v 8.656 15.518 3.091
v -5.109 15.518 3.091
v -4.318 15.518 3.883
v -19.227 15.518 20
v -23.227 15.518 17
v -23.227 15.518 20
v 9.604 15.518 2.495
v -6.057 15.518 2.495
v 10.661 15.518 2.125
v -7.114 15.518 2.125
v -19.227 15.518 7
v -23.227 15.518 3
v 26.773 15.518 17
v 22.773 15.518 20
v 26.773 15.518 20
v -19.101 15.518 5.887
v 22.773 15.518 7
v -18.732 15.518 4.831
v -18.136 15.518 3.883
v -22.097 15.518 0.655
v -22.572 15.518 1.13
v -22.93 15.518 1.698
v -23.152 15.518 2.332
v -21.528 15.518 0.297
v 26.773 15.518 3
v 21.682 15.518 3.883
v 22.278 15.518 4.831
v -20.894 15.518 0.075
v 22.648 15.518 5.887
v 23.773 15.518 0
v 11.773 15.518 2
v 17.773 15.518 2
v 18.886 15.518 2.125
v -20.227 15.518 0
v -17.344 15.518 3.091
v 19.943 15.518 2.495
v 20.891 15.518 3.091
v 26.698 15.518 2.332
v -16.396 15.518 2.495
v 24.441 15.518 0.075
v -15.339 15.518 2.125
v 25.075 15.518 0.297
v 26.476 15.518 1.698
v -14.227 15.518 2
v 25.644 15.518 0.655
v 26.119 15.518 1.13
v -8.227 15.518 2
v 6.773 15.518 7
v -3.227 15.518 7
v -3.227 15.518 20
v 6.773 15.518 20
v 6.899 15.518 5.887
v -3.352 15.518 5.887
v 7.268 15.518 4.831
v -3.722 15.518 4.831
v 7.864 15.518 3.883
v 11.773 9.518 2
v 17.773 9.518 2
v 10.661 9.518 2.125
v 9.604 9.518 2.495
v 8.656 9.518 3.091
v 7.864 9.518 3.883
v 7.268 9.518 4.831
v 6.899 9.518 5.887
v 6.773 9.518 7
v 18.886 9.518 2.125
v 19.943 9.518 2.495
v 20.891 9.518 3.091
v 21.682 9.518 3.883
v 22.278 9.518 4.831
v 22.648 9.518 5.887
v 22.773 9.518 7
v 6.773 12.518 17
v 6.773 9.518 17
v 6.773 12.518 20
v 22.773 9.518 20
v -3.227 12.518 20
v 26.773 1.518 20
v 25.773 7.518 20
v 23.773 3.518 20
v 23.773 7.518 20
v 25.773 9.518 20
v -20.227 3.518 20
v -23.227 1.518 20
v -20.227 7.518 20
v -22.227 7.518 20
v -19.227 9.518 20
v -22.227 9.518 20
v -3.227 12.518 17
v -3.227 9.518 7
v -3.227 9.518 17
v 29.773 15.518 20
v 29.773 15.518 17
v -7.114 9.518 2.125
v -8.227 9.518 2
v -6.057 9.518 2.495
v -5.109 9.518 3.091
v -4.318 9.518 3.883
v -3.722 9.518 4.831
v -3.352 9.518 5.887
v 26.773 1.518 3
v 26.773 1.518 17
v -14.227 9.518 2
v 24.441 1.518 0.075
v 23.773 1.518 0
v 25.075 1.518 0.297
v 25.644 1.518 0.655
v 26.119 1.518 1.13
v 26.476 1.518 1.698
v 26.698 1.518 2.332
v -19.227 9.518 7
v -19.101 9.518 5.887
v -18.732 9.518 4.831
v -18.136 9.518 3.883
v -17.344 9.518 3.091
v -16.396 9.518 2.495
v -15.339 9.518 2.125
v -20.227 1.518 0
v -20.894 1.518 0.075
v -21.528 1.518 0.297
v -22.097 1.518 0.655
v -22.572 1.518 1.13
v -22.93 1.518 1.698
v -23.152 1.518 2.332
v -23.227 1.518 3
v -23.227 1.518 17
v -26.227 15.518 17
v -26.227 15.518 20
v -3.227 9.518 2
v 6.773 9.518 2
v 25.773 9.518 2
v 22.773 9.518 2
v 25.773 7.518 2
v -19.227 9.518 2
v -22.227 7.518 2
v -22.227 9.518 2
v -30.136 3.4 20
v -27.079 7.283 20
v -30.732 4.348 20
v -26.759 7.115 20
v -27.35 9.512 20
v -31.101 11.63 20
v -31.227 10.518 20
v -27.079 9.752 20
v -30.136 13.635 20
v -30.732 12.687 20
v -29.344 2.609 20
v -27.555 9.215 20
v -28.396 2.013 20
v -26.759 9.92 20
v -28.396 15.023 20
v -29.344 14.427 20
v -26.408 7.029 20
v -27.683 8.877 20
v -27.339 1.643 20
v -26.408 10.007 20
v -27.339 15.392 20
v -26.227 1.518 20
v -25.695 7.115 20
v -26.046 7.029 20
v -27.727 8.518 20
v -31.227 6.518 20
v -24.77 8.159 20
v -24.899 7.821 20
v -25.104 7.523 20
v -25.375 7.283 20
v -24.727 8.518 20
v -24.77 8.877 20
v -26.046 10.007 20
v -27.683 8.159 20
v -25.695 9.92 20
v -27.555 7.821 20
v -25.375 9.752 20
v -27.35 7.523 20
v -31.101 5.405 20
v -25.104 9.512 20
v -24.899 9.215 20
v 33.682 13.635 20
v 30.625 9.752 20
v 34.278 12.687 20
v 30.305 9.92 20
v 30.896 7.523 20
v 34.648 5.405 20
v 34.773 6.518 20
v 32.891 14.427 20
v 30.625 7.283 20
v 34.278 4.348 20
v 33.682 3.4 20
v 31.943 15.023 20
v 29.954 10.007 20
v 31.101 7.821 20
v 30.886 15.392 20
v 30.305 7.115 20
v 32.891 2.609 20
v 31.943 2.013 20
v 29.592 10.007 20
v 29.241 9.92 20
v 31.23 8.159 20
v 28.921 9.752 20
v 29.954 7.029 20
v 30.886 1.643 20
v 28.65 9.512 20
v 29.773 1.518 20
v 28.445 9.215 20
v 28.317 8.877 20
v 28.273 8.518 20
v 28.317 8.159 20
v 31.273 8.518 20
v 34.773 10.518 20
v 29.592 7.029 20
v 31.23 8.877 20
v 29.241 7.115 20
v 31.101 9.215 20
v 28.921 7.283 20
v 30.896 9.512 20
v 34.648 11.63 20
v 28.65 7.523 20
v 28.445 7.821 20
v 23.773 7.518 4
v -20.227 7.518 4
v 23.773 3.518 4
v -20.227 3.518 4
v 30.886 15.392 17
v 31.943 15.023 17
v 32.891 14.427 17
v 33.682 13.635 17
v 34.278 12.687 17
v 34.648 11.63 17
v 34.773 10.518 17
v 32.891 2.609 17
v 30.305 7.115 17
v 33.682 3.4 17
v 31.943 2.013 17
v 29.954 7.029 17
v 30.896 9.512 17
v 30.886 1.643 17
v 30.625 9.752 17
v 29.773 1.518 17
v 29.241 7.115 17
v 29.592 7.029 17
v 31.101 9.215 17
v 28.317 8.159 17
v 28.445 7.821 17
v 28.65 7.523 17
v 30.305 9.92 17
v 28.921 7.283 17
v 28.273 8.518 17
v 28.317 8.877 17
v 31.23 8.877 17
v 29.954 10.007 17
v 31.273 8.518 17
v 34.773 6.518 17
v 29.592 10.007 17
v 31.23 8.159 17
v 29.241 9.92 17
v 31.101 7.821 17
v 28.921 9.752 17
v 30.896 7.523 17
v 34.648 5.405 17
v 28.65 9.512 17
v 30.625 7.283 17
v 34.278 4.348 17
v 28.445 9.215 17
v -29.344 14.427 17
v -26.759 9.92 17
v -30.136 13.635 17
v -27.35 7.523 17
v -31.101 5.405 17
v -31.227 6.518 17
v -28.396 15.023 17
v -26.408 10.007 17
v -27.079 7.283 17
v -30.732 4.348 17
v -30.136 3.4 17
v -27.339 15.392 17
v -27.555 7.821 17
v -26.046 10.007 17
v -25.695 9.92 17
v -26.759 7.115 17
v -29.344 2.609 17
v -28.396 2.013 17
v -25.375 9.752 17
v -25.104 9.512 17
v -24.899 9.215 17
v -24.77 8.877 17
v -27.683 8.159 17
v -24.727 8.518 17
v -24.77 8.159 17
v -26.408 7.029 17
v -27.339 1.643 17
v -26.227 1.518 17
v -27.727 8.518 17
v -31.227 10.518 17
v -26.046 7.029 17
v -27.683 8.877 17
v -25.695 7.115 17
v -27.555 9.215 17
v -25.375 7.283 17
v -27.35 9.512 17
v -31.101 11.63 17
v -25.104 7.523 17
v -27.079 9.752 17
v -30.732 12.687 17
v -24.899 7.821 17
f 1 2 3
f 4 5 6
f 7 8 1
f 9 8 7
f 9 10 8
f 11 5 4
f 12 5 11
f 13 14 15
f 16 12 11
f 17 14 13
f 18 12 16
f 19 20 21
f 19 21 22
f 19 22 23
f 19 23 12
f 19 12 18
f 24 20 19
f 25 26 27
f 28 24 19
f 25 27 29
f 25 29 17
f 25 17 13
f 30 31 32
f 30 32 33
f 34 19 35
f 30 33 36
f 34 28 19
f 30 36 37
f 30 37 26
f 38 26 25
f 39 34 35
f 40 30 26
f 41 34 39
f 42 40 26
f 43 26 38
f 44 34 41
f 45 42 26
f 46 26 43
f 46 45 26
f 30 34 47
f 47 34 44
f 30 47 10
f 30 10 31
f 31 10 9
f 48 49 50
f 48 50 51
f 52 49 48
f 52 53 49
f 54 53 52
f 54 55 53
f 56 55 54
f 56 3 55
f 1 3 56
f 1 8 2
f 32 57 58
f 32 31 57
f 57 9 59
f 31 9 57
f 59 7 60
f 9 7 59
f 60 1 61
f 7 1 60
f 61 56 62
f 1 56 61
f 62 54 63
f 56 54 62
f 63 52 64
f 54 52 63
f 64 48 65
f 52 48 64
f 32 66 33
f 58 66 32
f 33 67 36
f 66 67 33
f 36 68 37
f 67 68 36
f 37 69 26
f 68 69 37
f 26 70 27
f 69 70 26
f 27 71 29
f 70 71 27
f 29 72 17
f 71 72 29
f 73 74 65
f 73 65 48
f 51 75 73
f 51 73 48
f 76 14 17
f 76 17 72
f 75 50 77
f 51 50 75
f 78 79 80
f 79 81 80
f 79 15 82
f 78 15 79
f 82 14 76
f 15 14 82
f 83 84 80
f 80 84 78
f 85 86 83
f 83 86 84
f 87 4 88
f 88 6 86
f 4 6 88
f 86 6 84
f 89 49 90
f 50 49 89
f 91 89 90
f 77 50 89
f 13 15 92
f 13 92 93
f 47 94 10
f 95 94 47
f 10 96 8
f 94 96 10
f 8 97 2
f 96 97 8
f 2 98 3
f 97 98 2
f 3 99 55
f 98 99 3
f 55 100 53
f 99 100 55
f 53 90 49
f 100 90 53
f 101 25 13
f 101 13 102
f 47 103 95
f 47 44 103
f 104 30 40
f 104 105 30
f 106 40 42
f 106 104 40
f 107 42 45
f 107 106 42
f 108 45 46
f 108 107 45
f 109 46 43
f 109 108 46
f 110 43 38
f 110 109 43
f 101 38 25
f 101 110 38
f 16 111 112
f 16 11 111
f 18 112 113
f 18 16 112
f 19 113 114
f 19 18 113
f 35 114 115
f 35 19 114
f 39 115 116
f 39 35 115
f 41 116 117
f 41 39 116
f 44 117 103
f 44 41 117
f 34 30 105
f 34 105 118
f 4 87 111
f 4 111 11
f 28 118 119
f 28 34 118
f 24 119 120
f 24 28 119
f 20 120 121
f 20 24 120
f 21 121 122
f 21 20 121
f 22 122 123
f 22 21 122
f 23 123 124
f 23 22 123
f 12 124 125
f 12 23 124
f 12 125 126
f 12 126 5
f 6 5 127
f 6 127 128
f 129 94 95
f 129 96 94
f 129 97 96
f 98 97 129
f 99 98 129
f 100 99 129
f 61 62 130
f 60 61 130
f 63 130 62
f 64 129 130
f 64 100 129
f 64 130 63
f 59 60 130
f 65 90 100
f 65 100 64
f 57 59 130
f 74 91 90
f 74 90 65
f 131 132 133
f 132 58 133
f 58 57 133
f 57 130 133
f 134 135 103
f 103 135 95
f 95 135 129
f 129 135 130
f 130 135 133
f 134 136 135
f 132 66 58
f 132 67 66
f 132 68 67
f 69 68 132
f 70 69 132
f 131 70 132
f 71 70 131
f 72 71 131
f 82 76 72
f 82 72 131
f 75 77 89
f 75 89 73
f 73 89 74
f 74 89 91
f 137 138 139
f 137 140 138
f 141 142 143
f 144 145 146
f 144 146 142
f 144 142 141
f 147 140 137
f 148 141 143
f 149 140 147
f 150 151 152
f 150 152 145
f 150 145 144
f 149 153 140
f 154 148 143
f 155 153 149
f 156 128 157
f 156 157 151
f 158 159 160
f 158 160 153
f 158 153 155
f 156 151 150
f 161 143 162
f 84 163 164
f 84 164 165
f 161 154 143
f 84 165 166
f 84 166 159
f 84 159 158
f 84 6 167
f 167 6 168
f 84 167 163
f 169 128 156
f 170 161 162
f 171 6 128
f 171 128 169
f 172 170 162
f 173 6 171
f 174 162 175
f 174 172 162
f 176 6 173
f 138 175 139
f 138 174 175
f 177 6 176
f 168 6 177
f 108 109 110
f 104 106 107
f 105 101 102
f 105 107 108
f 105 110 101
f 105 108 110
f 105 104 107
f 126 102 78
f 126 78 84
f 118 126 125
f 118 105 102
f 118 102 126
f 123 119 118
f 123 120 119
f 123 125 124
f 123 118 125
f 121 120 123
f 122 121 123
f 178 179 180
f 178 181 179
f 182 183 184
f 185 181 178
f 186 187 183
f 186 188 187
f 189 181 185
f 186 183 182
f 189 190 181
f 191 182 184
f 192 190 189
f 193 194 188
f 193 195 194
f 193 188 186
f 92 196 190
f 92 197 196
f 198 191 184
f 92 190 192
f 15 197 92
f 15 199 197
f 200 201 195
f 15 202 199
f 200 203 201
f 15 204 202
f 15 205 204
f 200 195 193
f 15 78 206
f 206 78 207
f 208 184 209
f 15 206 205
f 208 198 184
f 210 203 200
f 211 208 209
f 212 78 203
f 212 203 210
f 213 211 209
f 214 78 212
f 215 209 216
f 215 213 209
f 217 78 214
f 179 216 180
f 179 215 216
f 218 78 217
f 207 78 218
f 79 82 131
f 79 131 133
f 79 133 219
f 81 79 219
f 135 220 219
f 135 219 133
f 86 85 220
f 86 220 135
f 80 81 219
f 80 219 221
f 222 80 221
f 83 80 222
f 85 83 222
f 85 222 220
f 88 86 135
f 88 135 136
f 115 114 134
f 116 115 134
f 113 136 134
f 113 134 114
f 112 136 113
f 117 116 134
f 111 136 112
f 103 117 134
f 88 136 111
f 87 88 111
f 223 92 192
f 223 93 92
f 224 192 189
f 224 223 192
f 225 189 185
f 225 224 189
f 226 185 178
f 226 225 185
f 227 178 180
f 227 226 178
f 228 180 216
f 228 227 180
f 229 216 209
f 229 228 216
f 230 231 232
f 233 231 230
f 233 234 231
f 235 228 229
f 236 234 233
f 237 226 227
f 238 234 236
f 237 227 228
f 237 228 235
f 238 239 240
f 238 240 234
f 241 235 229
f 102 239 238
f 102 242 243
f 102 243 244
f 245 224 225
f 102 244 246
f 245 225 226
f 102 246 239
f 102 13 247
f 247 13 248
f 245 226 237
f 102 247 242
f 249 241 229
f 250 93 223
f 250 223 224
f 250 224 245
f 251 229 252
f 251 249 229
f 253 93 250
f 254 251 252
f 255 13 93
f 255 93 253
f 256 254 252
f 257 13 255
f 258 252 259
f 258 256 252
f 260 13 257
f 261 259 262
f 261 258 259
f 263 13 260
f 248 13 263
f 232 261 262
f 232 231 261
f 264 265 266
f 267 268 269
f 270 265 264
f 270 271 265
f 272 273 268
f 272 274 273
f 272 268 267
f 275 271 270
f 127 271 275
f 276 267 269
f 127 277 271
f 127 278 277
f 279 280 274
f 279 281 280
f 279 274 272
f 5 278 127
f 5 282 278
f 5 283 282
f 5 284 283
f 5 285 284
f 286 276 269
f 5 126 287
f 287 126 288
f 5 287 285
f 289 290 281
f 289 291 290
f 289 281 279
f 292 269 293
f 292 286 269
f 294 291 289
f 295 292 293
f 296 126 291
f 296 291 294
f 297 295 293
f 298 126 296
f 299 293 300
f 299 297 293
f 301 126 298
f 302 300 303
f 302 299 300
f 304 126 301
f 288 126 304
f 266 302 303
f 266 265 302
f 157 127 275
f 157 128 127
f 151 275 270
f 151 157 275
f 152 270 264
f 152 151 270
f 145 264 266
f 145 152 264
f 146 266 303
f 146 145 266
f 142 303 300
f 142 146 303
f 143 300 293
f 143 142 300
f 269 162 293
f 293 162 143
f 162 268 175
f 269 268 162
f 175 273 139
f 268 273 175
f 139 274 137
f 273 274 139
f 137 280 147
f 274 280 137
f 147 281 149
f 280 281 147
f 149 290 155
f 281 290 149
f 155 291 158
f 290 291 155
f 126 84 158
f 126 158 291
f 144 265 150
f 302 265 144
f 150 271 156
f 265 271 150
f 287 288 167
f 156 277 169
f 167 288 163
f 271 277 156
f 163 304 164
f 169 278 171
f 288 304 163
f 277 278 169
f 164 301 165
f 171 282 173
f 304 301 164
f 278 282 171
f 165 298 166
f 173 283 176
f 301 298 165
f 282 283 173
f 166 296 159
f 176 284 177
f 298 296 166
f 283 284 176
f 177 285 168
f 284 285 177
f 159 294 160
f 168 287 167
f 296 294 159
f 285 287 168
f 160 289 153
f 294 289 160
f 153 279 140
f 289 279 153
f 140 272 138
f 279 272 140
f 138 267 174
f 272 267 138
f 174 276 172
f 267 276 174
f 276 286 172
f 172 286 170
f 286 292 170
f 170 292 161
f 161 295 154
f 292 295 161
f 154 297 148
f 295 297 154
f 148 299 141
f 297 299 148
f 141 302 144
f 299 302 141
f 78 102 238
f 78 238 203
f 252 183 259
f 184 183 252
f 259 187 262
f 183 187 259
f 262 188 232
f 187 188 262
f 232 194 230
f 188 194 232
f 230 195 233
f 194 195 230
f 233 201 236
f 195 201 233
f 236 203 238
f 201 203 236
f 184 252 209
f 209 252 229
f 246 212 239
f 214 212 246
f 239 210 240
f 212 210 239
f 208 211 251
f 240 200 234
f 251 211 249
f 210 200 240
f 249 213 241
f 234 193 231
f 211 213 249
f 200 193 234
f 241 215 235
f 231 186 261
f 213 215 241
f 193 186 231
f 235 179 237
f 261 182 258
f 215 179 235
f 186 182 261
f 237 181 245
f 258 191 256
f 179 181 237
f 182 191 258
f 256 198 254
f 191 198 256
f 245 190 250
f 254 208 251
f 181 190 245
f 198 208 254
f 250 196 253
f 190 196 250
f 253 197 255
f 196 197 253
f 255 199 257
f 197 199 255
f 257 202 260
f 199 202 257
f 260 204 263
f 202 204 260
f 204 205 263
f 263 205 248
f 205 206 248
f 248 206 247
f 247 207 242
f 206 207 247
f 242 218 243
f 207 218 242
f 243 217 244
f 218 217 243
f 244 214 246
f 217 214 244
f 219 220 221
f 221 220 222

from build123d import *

# Parameters (mm, degrees)
SKETCH_W        = 50
SKETCH_H        = 14
PAD_DEPTH       = 20
SKETCH001_W     = 48
SKETCH001_H     = 2
POCKET_DEPTH    = 18
SKETCH002_W     = 44
SKETCH002_H     = 4
POCKET001_DEPTH = 16
SKETCH003_W     = 16
SKETCH003_H     = 6
POCKET002_DEPTH = 18
SKETCH004_W     = 10
SKETCH004_H     = 3
POCKET003_DEPTH = 3
SKETCH005_W     = 14
SKETCH005_H     = 3
PAD001_DEPTH    = 8
SKETCH006_W     = 14
SKETCH006_H     = 3
PAD002_DEPTH    = 8
SKETCH007_R     = 1.5
POCKET004_DEPTH = 3
POCKET005_DEPTH = 3
SKETCH008_R     = 1.5
POCKET006_DEPTH = 3
FILLET_R        = 5
FILLET001_R     = 3
FILLET002_R     = 5
FILLET003_R     = 5
FILLET004_R     = 5
FILLET005_R     = 5


with BuildPart() as part:
    # Sketch → Pad (new body)
    with BuildSketch(Plane.XY):
        with Locations((1.773205, 8.517665)):
            Rectangle(SKETCH_W, SKETCH_H)
    extrude(amount=PAD_DEPTH)

    # Sketch001 (on Face6 of Pad) → Pocket (cut)
    with BuildSketch(Plane.XY.offset(20)):
        with Locations((1.773205, 8.517665)):
            Rectangle(SKETCH001_W, SKETCH001_H)
    extrude(amount=-POCKET_DEPTH, mode=Mode.SUBTRACT)

    # Sketch002 (on Face5 of Pocket) → Pocket001 (cut)
    with BuildSketch(Plane.XY.offset(20)):
        with Locations((1.773205, 5.517665)):
            Rectangle(SKETCH002_W, SKETCH002_H)
    extrude(amount=-POCKET001_DEPTH, mode=Mode.SUBTRACT)

    # Sketch003 (on Face5 of Pocket001) → Pocket002 (cut)
    with BuildSketch(Plane.XY.offset(20)):
        with Locations((-11.226795, 12.517665)):
            Rectangle(SKETCH003_W, SKETCH003_H)
        with Locations((14.773205, 12.517665)):
            Rectangle(SKETCH003_W, SKETCH003_H)
    extrude(amount=-POCKET002_DEPTH, mode=Mode.SUBTRACT)

    # Sketch004 (on Face8 of Pocket002) → Pocket003 (cut)
    with BuildSketch(Plane.XY.offset(20)):
        with Locations((1.773205, 11.017665)):
            Rectangle(SKETCH004_W, SKETCH004_H)
    extrude(amount=-POCKET003_DEPTH, mode=Mode.SUBTRACT)

    # Sketch005 (on Face12 of Pocket003) → Pad001 (join)
    with BuildSketch(Plane(origin=(-23.226795, 0, 0), x_dir=(0, -1, 0), z_dir=(-1, 0, 0))):
        with Locations((-8.517665, 18.5)):
            Rectangle(SKETCH005_W, SKETCH005_H)
    extrude(amount=PAD001_DEPTH)

    # Sketch006 (on Face3 of Pad001) → Pad002 (join)
    with BuildSketch(Plane.YZ.offset(26.773205)):
        with Locations((8.517665, 18.5)):
            Rectangle(SKETCH006_W, SKETCH006_H)
    extrude(amount=PAD002_DEPTH)

    # Sketch007 (on Face32 of Pad002) → Pocket004 (cut)
    with BuildSketch(Plane(origin=(0, 0, 17), x_dir=(1, 0, 0), z_dir=(0, 0, -1))):
        with Locations((-26.226795, -8.517665)):
            Circle(SKETCH007_R)
    extrude(amount=-POCKET004_DEPTH, mode=Mode.SUBTRACT)

    # Sketch007 (on Face32 of Pad002) → Pocket005 (cut)
    with BuildSketch(Plane(origin=(0, 0, 17), x_dir=(1, 0, 0), z_dir=(0, 0, -1))):
        with Locations((-26.226795, -8.517665)):
            Circle(SKETCH007_R)
    extrude(amount=-POCKET005_DEPTH, mode=Mode.SUBTRACT)

    # Sketch008 (on Face17 of Pocket005) → Pocket006 (cut)
    with BuildSketch(Plane.XY.offset(20)):
        with Locations((29.773205, 8.517665)):
            Circle(SKETCH008_R)
    extrude(amount=-POCKET006_DEPTH, mode=Mode.SUBTRACT)

    # Fillet
    fillet_edges = [part.edges().sort_by_distance(p)[0] for p in [
        (34.773205, 15.517665, 18.5),
        (34.773205, 1.517665, 18.5),
        (-31.226795, 1.517665, 18.5),
        (-31.226795, 15.517665, 18.5),
    ]]
    fillet(fillet_edges, radius=FILLET_R)

    # Fillet001
    fillet001_edges = [part.edges().sort_by_distance(p)[0] for p in [
        (-23.226795, 8.517665, 0),
        (26.773205, 8.517665, 0),
    ]]
    fillet(fillet001_edges, radius=FILLET001_R)

    # Fillet002
    fillet002_edges = [part.edges().sort_by_distance(p)[0] for p in [
        (-19.226795, 12.517665, 2),
    ]]
    fillet(fillet002_edges, radius=FILLET002_R)

    # Fillet003
    fillet003_edges = [part.edges().sort_by_distance(p)[0] for p in [
        (-3.226795, 12.517665, 2),
    ]]
    fillet(fillet003_edges, radius=FILLET003_R)

    # Fillet004
    fillet004_edges = [part.edges().sort_by_distance(p)[0] for p in [
        (22.773205, 12.517665, 2),
    ]]
    fillet(fillet004_edges, radius=FILLET004_R)

    # Fillet005
    fillet005_edges = [part.edges().sort_by_distance(p)[0] for p in [
        (6.773205, 12.517665, 2),
    ]]
    fillet(fillet005_edges, radius=FILLET005_R)


solid = part.part
